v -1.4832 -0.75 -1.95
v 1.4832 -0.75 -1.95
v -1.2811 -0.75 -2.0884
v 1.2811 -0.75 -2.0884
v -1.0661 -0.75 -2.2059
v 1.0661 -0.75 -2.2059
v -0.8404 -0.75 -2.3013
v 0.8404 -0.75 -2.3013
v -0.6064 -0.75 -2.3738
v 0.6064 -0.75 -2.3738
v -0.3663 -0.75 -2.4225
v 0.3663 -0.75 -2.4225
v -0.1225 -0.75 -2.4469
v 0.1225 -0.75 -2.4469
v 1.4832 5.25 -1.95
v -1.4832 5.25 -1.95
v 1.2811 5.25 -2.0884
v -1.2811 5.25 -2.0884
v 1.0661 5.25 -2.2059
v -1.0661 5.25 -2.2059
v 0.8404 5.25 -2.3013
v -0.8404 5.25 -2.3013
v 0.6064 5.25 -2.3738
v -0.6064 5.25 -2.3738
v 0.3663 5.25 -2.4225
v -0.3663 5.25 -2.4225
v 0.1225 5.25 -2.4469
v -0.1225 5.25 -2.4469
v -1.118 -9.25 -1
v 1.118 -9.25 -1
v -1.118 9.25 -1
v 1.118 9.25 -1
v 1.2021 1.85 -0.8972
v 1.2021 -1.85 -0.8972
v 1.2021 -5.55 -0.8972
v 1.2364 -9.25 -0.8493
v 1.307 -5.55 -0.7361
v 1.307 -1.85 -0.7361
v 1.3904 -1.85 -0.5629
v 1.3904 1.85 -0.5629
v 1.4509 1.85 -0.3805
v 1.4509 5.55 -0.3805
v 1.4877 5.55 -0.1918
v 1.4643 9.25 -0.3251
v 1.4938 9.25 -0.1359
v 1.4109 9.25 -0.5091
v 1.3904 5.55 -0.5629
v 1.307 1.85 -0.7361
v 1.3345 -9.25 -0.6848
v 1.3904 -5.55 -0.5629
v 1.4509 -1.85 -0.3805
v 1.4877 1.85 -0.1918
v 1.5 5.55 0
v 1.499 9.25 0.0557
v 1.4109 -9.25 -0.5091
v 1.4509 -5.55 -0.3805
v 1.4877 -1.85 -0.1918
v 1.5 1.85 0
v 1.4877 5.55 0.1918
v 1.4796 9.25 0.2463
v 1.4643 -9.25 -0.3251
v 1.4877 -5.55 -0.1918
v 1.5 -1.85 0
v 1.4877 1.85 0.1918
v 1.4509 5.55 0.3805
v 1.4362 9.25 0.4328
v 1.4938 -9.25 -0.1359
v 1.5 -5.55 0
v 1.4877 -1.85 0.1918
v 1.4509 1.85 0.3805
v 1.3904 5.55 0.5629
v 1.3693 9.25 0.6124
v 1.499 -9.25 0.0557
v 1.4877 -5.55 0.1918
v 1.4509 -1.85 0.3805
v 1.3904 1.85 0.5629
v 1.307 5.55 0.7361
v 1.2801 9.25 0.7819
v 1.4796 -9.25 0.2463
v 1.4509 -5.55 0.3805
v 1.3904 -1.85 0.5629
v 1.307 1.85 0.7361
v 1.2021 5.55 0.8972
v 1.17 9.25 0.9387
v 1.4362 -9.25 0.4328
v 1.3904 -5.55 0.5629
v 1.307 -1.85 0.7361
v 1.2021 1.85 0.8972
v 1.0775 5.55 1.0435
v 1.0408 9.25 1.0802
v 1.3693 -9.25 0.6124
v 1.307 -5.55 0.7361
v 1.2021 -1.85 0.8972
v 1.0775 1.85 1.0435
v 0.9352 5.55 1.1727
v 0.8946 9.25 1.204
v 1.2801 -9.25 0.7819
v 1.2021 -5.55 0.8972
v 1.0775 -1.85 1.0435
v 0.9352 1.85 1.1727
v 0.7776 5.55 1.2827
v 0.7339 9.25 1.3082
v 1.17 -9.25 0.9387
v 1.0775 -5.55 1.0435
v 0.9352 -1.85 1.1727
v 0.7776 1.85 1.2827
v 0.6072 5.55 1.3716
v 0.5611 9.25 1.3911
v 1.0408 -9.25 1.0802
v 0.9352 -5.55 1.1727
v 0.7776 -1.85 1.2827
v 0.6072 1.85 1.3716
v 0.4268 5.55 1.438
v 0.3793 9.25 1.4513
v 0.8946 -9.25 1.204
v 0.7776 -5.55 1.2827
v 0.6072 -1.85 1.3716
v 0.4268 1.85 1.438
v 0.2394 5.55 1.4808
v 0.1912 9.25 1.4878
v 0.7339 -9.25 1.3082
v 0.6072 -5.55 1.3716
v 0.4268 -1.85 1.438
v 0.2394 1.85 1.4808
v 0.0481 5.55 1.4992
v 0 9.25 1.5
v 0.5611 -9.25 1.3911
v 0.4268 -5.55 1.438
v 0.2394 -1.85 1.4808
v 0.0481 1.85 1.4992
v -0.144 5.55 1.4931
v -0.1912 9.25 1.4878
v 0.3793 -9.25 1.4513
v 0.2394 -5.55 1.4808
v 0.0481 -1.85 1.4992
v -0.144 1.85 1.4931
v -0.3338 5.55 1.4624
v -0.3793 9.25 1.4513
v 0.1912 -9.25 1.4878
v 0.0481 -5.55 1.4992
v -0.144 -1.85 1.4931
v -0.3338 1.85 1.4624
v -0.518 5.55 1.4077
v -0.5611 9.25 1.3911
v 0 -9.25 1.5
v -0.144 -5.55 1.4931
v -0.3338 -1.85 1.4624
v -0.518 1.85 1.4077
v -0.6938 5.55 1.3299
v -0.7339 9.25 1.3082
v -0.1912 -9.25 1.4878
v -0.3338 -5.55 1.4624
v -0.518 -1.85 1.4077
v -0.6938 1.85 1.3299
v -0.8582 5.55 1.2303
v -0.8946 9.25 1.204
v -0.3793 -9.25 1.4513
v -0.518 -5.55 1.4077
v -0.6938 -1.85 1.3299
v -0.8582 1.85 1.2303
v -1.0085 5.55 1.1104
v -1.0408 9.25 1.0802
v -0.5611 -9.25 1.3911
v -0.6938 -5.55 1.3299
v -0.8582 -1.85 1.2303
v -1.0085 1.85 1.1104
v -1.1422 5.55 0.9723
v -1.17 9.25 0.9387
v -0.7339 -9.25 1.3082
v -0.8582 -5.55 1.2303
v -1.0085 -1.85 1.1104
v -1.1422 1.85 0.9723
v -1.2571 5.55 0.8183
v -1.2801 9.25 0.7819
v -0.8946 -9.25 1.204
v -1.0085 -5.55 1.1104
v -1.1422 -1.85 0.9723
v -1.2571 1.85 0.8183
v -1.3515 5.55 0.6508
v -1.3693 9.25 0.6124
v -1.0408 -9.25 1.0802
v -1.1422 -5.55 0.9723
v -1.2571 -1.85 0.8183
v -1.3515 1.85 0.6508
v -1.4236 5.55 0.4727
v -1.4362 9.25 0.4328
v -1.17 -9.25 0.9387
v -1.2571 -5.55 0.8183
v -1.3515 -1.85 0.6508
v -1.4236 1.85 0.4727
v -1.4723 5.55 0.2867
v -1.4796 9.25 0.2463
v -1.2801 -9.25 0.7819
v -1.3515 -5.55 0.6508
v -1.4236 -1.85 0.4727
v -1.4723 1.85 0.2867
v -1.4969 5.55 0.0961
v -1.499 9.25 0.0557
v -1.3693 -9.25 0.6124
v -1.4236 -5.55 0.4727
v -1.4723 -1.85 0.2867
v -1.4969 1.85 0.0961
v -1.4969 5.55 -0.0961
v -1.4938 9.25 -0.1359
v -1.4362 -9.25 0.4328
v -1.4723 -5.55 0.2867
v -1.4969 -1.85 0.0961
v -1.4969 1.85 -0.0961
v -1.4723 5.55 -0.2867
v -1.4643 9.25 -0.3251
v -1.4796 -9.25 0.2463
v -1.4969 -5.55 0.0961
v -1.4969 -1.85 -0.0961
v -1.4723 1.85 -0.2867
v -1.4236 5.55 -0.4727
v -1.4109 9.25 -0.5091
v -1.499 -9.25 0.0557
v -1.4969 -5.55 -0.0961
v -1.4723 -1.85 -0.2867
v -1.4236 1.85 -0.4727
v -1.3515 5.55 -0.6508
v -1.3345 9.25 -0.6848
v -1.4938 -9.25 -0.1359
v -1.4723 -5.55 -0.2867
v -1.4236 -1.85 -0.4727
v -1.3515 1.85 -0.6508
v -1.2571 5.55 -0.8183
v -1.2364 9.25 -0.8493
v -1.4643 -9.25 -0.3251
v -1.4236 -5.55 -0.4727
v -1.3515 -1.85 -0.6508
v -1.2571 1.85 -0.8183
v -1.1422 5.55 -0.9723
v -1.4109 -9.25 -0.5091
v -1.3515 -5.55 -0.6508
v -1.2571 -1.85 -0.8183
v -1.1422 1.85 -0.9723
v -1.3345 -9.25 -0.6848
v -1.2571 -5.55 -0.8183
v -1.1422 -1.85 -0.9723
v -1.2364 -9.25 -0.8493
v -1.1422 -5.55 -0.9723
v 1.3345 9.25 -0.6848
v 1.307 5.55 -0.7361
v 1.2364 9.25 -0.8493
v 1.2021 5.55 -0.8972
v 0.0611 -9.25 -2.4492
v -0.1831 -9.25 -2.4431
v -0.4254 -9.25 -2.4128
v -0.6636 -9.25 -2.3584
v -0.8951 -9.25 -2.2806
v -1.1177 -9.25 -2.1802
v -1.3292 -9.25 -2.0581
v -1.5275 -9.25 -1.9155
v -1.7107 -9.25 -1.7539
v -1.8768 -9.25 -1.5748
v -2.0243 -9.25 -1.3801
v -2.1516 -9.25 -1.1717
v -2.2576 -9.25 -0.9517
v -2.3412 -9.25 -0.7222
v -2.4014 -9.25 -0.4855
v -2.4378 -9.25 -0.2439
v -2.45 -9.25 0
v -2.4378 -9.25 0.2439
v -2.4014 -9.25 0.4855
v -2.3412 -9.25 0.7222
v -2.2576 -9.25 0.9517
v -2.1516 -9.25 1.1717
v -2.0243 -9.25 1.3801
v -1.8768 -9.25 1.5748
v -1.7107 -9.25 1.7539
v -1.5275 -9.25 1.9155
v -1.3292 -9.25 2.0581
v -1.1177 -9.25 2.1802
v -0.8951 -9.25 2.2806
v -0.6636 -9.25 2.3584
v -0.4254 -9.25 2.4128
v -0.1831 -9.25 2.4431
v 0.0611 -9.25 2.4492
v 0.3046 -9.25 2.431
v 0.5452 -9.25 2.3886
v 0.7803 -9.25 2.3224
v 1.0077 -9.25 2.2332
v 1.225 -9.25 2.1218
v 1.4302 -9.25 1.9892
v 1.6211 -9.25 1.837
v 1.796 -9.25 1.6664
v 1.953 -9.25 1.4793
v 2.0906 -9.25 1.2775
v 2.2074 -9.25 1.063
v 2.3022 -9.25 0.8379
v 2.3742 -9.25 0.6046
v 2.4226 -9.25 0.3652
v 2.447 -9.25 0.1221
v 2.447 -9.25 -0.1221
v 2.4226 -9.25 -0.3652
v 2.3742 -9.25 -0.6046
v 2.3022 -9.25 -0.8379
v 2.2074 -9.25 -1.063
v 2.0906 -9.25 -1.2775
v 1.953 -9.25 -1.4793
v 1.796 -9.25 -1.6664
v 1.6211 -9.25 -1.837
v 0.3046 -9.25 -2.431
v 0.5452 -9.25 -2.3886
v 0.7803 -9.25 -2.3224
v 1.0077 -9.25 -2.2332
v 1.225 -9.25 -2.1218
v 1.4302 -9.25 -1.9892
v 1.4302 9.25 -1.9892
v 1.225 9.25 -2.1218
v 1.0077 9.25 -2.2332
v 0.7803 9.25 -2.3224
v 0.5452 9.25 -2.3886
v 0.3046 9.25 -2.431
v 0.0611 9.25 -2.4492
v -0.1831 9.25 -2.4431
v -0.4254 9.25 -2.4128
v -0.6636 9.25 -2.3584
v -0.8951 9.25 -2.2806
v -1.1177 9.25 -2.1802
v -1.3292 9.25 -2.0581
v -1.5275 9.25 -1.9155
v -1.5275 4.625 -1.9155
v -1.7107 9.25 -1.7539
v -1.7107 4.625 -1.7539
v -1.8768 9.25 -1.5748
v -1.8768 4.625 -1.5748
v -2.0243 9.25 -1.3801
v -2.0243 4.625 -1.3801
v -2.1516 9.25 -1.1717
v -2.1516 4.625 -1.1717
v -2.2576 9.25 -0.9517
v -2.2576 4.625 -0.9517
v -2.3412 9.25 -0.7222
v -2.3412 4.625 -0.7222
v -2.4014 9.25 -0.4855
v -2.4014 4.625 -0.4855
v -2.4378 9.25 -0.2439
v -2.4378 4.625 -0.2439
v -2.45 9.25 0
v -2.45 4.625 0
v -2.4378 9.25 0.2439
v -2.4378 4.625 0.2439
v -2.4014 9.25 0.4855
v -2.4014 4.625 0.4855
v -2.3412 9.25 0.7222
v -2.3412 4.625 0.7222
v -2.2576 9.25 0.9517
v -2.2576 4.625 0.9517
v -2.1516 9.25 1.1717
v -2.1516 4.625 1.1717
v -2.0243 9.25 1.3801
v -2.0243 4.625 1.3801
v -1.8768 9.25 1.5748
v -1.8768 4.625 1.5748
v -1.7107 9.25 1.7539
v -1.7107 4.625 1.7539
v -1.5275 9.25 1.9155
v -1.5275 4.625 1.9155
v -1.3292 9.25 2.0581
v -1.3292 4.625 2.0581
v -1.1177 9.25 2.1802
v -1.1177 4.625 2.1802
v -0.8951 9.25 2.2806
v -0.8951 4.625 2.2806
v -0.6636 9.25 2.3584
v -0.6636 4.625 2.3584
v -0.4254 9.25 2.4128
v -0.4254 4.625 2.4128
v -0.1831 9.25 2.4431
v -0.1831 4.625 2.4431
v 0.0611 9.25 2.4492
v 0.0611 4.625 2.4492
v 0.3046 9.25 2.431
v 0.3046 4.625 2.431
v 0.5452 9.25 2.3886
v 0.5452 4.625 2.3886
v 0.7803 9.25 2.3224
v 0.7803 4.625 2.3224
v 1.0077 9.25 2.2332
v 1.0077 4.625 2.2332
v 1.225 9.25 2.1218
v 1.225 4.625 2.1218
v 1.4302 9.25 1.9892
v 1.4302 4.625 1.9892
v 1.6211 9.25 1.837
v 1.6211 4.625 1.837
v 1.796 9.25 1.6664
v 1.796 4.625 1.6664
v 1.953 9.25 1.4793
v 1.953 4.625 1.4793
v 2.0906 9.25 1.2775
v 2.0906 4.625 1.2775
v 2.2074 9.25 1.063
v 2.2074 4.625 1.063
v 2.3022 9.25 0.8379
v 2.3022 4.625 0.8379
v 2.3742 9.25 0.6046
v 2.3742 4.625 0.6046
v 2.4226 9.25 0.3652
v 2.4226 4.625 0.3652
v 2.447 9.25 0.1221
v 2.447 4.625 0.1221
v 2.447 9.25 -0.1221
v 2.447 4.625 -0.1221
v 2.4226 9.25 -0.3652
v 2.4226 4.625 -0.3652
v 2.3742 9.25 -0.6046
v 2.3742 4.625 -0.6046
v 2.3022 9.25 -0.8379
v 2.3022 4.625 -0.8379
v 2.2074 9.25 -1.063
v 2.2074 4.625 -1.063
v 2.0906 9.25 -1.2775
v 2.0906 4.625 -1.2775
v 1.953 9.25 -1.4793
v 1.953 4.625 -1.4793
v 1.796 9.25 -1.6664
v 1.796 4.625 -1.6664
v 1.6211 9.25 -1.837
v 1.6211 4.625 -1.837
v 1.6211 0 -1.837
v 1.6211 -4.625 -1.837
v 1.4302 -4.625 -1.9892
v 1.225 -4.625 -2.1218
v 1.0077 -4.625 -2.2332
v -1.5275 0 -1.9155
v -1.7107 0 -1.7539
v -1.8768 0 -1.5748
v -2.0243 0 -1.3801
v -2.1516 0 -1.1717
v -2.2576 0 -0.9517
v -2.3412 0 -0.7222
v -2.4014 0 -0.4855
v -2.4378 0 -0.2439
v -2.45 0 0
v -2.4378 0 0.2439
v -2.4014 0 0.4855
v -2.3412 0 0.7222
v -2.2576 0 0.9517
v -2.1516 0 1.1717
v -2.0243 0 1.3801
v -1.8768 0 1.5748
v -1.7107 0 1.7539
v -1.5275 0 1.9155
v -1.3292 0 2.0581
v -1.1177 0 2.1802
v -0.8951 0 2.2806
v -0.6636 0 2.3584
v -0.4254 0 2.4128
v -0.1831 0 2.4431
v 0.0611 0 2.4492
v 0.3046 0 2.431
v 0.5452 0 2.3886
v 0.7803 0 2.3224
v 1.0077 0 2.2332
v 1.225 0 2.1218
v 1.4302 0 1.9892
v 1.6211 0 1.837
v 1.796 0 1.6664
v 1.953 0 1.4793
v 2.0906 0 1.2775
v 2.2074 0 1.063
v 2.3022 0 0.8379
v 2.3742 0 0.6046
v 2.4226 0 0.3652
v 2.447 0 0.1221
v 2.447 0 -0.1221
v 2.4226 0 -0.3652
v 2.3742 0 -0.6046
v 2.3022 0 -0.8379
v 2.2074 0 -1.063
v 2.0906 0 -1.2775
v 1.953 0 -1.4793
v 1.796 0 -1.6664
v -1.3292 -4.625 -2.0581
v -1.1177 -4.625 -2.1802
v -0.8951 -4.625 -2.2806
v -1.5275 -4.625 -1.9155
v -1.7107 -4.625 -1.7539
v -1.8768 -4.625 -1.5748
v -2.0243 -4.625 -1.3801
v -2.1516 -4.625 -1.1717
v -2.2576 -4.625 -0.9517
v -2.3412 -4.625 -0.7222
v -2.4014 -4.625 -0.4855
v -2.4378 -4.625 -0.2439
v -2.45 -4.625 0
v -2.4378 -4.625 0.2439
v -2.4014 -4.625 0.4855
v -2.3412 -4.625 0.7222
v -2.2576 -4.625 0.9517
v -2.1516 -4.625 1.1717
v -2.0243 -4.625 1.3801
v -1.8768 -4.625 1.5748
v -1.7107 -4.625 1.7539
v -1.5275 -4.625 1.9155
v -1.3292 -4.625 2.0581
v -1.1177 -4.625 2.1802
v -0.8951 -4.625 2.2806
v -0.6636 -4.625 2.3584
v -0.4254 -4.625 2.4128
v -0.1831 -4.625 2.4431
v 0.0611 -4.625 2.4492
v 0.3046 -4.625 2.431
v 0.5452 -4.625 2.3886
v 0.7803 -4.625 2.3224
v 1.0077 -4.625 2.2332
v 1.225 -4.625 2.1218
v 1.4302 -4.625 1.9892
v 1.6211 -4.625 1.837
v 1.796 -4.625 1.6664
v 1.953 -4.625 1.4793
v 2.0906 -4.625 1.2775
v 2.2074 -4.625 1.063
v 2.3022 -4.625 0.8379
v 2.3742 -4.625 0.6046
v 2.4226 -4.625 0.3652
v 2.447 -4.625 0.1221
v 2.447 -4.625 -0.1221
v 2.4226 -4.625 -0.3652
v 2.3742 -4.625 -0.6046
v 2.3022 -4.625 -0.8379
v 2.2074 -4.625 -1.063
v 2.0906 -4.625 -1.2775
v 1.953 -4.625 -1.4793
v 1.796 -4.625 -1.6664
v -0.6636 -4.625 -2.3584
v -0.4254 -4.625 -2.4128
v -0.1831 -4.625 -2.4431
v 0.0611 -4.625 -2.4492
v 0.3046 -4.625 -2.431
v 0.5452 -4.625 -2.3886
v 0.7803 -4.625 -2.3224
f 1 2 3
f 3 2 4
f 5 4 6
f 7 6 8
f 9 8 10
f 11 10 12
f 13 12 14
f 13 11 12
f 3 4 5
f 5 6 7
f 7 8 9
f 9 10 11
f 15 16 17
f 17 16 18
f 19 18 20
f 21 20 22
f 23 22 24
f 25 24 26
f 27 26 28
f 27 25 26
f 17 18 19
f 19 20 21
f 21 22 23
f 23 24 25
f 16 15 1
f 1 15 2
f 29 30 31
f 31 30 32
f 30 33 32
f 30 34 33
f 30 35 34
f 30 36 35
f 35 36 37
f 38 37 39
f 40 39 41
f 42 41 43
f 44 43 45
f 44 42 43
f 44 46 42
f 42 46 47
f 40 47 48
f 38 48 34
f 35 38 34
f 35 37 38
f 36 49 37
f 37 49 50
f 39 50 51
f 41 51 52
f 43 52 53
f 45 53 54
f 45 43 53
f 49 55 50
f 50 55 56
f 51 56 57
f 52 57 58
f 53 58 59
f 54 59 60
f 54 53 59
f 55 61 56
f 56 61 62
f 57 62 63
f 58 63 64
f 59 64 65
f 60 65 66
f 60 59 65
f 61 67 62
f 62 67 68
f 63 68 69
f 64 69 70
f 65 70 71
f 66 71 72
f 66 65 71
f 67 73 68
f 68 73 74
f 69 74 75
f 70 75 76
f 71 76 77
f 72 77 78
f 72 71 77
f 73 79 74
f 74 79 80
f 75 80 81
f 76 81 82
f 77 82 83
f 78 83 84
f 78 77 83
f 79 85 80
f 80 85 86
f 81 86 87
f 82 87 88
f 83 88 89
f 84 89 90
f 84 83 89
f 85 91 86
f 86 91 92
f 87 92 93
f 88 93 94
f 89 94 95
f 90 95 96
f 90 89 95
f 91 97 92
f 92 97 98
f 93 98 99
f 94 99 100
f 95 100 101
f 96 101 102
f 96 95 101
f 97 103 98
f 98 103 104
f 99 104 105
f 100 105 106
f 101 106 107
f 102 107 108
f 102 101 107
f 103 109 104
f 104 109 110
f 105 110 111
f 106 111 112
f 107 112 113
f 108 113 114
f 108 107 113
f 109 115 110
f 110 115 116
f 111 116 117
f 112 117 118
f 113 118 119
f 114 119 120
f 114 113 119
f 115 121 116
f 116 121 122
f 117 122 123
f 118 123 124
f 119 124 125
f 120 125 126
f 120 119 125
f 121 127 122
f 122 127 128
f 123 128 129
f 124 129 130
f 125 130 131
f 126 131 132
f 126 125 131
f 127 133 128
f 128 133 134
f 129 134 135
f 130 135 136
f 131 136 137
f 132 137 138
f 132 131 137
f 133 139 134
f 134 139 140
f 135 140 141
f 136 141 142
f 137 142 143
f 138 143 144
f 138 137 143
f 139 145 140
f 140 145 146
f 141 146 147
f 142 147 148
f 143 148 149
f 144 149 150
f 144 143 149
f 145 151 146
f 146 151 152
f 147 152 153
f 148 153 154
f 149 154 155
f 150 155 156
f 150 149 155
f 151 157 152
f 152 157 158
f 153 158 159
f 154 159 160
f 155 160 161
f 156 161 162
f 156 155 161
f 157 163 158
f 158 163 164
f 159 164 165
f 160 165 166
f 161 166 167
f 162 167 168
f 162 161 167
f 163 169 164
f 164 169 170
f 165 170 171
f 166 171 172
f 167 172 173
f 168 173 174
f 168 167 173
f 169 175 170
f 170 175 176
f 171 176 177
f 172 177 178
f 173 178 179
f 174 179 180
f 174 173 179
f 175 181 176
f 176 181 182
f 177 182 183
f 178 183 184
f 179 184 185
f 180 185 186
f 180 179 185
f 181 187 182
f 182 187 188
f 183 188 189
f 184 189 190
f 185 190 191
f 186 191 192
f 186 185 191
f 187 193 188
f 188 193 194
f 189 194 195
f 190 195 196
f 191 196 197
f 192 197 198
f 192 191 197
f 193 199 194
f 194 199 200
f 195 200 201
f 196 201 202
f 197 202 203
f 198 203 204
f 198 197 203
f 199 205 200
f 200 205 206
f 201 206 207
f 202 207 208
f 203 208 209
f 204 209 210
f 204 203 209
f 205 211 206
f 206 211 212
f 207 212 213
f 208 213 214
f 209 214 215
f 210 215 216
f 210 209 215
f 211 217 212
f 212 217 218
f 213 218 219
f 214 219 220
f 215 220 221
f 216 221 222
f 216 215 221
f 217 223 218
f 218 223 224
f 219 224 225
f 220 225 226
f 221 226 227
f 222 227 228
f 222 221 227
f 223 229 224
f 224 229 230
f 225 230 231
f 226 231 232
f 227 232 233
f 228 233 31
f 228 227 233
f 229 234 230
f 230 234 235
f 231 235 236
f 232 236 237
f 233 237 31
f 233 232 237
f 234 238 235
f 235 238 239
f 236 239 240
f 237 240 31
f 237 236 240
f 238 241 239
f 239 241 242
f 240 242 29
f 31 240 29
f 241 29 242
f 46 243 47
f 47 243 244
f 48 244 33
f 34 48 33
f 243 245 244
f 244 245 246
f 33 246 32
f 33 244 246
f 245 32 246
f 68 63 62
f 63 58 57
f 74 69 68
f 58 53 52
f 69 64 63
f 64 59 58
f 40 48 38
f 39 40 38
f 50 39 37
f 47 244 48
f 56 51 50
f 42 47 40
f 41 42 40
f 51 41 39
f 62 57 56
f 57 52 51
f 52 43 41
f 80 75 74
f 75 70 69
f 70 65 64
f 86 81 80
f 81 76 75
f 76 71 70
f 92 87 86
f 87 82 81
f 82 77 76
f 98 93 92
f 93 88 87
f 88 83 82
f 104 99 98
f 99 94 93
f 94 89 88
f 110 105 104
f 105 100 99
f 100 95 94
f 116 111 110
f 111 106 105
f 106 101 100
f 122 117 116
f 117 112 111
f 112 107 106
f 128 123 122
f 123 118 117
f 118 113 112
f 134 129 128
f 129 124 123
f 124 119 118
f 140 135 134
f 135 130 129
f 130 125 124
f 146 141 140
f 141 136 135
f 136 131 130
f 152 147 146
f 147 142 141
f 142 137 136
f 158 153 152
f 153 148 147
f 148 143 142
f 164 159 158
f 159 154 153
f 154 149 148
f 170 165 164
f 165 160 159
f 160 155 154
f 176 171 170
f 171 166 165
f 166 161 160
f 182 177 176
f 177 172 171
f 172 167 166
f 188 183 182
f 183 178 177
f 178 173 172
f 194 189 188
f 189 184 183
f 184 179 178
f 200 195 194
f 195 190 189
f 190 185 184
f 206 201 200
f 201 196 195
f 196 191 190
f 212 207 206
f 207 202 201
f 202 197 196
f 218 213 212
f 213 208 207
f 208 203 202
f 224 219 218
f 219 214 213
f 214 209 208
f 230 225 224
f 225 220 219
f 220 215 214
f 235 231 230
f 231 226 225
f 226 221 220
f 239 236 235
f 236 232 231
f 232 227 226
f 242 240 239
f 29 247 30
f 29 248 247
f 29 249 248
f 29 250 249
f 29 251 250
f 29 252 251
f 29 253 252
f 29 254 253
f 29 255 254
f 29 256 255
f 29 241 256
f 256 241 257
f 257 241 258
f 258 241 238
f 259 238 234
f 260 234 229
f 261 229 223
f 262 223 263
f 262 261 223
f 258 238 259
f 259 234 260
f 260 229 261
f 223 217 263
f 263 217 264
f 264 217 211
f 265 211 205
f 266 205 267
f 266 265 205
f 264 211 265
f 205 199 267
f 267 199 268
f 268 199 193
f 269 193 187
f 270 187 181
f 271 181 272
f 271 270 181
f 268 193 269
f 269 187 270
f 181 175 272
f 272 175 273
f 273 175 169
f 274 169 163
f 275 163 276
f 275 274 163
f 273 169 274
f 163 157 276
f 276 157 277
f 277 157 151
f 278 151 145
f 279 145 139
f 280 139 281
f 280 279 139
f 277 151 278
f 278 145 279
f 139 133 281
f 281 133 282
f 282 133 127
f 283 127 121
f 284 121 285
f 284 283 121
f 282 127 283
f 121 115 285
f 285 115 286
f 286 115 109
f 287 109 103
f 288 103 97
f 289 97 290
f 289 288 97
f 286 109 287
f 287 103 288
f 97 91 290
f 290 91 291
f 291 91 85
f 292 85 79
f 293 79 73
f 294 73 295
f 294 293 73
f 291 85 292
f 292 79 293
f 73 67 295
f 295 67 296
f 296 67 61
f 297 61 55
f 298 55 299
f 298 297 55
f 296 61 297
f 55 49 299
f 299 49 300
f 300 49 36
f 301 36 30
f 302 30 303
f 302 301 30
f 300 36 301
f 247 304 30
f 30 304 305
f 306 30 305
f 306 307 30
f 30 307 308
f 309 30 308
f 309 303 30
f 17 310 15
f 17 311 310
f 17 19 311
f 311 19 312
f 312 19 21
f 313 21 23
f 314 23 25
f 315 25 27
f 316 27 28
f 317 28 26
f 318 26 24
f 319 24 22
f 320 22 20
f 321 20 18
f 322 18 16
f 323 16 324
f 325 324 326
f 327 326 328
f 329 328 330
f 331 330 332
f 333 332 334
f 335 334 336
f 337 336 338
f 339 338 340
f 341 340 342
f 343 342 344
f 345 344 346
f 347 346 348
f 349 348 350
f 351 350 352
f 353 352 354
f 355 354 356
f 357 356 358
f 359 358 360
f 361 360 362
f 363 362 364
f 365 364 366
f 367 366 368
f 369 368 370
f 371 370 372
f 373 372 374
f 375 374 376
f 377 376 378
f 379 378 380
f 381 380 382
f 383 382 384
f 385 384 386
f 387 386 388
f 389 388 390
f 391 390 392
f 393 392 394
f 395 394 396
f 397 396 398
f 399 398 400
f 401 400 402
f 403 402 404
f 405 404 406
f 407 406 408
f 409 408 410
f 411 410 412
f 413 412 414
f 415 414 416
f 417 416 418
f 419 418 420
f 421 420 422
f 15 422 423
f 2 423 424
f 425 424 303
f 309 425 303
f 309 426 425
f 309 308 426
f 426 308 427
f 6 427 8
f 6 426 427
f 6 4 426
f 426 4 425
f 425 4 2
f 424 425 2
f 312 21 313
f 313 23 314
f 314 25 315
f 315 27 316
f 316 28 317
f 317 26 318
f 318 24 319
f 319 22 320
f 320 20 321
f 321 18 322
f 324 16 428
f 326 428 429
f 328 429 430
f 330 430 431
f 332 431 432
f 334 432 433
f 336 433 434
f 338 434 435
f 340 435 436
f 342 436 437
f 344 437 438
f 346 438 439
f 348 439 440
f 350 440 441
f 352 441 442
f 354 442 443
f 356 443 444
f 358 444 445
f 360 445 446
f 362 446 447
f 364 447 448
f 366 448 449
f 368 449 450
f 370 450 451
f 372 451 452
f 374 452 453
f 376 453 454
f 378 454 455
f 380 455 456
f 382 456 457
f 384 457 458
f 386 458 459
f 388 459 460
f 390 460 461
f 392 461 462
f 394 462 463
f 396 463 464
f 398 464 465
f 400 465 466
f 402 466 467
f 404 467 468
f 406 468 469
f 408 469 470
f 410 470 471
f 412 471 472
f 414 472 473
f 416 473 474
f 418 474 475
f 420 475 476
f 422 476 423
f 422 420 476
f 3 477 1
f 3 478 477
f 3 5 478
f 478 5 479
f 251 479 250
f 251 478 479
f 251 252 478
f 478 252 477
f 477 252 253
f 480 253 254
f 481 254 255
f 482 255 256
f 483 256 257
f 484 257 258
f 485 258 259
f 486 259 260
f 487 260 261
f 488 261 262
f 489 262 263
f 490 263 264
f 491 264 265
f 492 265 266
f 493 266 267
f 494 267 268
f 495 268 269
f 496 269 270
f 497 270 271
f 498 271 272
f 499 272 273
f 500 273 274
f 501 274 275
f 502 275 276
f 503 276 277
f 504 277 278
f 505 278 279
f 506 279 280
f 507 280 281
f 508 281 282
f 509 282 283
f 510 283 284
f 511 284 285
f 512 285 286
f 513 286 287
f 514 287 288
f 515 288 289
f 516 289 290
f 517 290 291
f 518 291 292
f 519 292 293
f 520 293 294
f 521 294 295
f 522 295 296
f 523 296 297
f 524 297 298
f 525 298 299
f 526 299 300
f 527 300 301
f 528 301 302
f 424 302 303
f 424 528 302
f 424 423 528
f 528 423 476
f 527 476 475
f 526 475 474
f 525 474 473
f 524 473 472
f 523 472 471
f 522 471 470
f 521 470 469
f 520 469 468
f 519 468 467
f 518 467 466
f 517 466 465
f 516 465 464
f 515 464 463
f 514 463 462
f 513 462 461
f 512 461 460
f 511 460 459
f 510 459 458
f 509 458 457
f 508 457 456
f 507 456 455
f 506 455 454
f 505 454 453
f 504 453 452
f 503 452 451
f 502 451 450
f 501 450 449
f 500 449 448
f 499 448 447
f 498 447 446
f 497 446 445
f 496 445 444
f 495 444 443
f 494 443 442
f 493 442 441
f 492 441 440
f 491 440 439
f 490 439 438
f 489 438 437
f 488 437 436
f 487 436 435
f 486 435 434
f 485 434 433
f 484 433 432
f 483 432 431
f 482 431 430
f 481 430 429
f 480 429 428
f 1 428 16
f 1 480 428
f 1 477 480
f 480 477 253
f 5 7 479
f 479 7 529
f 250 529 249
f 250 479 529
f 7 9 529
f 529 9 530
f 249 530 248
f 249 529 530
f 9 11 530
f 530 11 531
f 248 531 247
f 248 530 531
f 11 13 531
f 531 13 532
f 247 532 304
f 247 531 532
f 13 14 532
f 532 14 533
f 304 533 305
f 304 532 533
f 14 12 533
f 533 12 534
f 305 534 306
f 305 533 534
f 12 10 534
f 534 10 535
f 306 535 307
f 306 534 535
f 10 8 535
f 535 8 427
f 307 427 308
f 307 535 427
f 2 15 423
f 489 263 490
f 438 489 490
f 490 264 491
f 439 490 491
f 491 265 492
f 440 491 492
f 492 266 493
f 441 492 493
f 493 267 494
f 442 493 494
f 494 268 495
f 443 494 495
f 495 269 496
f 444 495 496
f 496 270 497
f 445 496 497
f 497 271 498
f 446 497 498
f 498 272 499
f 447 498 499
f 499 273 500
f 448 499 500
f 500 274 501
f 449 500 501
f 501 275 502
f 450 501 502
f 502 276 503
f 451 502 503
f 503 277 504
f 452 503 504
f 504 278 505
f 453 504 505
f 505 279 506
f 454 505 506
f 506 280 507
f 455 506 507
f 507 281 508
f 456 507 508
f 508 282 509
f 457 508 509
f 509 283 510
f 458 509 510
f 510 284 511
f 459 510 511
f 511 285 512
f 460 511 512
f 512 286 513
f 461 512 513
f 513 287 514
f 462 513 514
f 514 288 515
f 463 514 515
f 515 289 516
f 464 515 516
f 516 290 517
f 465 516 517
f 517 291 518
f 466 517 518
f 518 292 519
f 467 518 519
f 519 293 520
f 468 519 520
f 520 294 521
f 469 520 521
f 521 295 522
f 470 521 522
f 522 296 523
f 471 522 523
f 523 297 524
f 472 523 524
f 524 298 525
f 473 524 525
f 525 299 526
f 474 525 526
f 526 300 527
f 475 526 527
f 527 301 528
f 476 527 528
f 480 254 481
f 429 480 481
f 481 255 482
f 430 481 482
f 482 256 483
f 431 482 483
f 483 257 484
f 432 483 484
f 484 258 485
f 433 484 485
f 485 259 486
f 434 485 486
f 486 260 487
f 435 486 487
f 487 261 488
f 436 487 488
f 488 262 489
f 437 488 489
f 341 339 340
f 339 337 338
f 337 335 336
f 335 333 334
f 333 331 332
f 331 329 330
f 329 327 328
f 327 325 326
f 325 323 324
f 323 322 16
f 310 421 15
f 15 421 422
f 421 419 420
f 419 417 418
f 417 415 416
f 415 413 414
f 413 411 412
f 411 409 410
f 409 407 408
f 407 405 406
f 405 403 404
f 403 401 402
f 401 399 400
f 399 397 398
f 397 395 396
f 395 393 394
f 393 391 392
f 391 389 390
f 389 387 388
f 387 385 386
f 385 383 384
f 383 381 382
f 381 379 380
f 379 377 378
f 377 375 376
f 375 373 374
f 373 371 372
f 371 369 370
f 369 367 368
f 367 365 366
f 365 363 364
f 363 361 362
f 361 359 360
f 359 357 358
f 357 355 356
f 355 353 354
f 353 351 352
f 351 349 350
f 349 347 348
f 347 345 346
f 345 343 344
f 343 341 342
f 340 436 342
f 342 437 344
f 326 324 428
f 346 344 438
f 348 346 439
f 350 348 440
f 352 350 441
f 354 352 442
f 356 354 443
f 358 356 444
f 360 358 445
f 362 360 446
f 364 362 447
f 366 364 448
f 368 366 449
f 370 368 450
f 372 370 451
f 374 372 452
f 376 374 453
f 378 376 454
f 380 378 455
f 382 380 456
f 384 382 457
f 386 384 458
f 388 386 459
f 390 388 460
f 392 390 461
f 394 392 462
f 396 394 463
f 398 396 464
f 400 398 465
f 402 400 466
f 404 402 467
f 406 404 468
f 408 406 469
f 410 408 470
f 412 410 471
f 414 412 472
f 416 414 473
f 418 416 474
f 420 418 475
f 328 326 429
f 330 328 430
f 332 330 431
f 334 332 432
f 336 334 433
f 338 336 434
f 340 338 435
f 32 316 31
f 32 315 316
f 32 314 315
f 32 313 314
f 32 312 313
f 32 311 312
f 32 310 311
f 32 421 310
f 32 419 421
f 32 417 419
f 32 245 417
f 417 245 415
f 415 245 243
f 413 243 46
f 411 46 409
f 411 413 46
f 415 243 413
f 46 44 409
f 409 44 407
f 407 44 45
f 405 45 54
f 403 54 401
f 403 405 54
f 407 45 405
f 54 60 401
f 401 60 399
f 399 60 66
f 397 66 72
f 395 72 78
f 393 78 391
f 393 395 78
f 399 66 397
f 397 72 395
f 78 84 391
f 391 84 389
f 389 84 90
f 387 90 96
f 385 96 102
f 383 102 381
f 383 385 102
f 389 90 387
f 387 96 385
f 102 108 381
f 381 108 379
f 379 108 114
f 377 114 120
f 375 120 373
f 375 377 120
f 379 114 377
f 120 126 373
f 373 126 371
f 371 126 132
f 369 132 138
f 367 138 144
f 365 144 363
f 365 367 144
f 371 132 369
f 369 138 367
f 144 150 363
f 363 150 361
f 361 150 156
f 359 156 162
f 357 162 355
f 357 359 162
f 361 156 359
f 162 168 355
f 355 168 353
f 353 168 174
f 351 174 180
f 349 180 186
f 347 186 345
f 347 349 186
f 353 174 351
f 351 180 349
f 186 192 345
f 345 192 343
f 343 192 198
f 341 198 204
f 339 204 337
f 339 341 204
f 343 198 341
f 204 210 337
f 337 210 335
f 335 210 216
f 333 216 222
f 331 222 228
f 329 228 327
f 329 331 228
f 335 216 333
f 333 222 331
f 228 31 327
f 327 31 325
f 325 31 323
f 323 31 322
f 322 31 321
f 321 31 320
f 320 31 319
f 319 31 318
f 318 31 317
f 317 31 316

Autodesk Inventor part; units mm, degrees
ref_plane "YZ Plane" through (0, 0, 0) normal (1, 0, 0) x (0, 1, 0)
ref_plane "XZ Plane" through (0, 0, 0) normal (0, 1, 0) x (-1, 0, 0)
sketch "Sketch1" plane through (0, 0, 0) normal (0, 1, 0) x (-1, 0, 0)
  circle A0 centre (0, 0) radius 1.5
  circle A1 centre (0, 0) radius 2.45
  line L0 (1.118, -1) -> (-1.118, -1)
  line L1 (0.4634, -1.5) -> (-1.27, -1.5) construction
  arc A2 (-1.118, -1) -> (1.118, -1) centre (0, 0) ccw construction
  dimension "d0" = 3
  dimension "d1" = 4.9
  dimension "d2" = 0.5
extrude "Extrusion1" add sketch "Sketch1" along normal mid plane 18.5 contours L0 A0 | A1 picked at (-0.2826, -1.0791)
ref_plane "Work Plane1" through (0, 0, -2.45) normal (0, 0, 1) x (1, 0, 0)
sketch "Sketch6" plane through (0, 0, -2.45) normal (0, 0, 1) x (1, 0, 0)
  line L0 (2.5, 5.25) -> (-2.5, 5.25)
  line L1 (-2.5, 5.25) -> (-2.5, -0.75)
  line L2 (-2.5, -0.75) -> (2.5, -0.75)
  line L3 (2.5, -0.75) -> (2.5, 5.25)
  line L4 (2.45, 9.25) -> (-2.45, 9.25) projected
  point P0 (0, 0)
  point P1 (0, 5.25)
  dimension "d20" = 4
  dimension "d21" = 6
  dimension "d22" = 5
extrude "Extrusion6" cut sketch "Sketch6" along normal blind 0.5
properties part number "ShaftConverter"
